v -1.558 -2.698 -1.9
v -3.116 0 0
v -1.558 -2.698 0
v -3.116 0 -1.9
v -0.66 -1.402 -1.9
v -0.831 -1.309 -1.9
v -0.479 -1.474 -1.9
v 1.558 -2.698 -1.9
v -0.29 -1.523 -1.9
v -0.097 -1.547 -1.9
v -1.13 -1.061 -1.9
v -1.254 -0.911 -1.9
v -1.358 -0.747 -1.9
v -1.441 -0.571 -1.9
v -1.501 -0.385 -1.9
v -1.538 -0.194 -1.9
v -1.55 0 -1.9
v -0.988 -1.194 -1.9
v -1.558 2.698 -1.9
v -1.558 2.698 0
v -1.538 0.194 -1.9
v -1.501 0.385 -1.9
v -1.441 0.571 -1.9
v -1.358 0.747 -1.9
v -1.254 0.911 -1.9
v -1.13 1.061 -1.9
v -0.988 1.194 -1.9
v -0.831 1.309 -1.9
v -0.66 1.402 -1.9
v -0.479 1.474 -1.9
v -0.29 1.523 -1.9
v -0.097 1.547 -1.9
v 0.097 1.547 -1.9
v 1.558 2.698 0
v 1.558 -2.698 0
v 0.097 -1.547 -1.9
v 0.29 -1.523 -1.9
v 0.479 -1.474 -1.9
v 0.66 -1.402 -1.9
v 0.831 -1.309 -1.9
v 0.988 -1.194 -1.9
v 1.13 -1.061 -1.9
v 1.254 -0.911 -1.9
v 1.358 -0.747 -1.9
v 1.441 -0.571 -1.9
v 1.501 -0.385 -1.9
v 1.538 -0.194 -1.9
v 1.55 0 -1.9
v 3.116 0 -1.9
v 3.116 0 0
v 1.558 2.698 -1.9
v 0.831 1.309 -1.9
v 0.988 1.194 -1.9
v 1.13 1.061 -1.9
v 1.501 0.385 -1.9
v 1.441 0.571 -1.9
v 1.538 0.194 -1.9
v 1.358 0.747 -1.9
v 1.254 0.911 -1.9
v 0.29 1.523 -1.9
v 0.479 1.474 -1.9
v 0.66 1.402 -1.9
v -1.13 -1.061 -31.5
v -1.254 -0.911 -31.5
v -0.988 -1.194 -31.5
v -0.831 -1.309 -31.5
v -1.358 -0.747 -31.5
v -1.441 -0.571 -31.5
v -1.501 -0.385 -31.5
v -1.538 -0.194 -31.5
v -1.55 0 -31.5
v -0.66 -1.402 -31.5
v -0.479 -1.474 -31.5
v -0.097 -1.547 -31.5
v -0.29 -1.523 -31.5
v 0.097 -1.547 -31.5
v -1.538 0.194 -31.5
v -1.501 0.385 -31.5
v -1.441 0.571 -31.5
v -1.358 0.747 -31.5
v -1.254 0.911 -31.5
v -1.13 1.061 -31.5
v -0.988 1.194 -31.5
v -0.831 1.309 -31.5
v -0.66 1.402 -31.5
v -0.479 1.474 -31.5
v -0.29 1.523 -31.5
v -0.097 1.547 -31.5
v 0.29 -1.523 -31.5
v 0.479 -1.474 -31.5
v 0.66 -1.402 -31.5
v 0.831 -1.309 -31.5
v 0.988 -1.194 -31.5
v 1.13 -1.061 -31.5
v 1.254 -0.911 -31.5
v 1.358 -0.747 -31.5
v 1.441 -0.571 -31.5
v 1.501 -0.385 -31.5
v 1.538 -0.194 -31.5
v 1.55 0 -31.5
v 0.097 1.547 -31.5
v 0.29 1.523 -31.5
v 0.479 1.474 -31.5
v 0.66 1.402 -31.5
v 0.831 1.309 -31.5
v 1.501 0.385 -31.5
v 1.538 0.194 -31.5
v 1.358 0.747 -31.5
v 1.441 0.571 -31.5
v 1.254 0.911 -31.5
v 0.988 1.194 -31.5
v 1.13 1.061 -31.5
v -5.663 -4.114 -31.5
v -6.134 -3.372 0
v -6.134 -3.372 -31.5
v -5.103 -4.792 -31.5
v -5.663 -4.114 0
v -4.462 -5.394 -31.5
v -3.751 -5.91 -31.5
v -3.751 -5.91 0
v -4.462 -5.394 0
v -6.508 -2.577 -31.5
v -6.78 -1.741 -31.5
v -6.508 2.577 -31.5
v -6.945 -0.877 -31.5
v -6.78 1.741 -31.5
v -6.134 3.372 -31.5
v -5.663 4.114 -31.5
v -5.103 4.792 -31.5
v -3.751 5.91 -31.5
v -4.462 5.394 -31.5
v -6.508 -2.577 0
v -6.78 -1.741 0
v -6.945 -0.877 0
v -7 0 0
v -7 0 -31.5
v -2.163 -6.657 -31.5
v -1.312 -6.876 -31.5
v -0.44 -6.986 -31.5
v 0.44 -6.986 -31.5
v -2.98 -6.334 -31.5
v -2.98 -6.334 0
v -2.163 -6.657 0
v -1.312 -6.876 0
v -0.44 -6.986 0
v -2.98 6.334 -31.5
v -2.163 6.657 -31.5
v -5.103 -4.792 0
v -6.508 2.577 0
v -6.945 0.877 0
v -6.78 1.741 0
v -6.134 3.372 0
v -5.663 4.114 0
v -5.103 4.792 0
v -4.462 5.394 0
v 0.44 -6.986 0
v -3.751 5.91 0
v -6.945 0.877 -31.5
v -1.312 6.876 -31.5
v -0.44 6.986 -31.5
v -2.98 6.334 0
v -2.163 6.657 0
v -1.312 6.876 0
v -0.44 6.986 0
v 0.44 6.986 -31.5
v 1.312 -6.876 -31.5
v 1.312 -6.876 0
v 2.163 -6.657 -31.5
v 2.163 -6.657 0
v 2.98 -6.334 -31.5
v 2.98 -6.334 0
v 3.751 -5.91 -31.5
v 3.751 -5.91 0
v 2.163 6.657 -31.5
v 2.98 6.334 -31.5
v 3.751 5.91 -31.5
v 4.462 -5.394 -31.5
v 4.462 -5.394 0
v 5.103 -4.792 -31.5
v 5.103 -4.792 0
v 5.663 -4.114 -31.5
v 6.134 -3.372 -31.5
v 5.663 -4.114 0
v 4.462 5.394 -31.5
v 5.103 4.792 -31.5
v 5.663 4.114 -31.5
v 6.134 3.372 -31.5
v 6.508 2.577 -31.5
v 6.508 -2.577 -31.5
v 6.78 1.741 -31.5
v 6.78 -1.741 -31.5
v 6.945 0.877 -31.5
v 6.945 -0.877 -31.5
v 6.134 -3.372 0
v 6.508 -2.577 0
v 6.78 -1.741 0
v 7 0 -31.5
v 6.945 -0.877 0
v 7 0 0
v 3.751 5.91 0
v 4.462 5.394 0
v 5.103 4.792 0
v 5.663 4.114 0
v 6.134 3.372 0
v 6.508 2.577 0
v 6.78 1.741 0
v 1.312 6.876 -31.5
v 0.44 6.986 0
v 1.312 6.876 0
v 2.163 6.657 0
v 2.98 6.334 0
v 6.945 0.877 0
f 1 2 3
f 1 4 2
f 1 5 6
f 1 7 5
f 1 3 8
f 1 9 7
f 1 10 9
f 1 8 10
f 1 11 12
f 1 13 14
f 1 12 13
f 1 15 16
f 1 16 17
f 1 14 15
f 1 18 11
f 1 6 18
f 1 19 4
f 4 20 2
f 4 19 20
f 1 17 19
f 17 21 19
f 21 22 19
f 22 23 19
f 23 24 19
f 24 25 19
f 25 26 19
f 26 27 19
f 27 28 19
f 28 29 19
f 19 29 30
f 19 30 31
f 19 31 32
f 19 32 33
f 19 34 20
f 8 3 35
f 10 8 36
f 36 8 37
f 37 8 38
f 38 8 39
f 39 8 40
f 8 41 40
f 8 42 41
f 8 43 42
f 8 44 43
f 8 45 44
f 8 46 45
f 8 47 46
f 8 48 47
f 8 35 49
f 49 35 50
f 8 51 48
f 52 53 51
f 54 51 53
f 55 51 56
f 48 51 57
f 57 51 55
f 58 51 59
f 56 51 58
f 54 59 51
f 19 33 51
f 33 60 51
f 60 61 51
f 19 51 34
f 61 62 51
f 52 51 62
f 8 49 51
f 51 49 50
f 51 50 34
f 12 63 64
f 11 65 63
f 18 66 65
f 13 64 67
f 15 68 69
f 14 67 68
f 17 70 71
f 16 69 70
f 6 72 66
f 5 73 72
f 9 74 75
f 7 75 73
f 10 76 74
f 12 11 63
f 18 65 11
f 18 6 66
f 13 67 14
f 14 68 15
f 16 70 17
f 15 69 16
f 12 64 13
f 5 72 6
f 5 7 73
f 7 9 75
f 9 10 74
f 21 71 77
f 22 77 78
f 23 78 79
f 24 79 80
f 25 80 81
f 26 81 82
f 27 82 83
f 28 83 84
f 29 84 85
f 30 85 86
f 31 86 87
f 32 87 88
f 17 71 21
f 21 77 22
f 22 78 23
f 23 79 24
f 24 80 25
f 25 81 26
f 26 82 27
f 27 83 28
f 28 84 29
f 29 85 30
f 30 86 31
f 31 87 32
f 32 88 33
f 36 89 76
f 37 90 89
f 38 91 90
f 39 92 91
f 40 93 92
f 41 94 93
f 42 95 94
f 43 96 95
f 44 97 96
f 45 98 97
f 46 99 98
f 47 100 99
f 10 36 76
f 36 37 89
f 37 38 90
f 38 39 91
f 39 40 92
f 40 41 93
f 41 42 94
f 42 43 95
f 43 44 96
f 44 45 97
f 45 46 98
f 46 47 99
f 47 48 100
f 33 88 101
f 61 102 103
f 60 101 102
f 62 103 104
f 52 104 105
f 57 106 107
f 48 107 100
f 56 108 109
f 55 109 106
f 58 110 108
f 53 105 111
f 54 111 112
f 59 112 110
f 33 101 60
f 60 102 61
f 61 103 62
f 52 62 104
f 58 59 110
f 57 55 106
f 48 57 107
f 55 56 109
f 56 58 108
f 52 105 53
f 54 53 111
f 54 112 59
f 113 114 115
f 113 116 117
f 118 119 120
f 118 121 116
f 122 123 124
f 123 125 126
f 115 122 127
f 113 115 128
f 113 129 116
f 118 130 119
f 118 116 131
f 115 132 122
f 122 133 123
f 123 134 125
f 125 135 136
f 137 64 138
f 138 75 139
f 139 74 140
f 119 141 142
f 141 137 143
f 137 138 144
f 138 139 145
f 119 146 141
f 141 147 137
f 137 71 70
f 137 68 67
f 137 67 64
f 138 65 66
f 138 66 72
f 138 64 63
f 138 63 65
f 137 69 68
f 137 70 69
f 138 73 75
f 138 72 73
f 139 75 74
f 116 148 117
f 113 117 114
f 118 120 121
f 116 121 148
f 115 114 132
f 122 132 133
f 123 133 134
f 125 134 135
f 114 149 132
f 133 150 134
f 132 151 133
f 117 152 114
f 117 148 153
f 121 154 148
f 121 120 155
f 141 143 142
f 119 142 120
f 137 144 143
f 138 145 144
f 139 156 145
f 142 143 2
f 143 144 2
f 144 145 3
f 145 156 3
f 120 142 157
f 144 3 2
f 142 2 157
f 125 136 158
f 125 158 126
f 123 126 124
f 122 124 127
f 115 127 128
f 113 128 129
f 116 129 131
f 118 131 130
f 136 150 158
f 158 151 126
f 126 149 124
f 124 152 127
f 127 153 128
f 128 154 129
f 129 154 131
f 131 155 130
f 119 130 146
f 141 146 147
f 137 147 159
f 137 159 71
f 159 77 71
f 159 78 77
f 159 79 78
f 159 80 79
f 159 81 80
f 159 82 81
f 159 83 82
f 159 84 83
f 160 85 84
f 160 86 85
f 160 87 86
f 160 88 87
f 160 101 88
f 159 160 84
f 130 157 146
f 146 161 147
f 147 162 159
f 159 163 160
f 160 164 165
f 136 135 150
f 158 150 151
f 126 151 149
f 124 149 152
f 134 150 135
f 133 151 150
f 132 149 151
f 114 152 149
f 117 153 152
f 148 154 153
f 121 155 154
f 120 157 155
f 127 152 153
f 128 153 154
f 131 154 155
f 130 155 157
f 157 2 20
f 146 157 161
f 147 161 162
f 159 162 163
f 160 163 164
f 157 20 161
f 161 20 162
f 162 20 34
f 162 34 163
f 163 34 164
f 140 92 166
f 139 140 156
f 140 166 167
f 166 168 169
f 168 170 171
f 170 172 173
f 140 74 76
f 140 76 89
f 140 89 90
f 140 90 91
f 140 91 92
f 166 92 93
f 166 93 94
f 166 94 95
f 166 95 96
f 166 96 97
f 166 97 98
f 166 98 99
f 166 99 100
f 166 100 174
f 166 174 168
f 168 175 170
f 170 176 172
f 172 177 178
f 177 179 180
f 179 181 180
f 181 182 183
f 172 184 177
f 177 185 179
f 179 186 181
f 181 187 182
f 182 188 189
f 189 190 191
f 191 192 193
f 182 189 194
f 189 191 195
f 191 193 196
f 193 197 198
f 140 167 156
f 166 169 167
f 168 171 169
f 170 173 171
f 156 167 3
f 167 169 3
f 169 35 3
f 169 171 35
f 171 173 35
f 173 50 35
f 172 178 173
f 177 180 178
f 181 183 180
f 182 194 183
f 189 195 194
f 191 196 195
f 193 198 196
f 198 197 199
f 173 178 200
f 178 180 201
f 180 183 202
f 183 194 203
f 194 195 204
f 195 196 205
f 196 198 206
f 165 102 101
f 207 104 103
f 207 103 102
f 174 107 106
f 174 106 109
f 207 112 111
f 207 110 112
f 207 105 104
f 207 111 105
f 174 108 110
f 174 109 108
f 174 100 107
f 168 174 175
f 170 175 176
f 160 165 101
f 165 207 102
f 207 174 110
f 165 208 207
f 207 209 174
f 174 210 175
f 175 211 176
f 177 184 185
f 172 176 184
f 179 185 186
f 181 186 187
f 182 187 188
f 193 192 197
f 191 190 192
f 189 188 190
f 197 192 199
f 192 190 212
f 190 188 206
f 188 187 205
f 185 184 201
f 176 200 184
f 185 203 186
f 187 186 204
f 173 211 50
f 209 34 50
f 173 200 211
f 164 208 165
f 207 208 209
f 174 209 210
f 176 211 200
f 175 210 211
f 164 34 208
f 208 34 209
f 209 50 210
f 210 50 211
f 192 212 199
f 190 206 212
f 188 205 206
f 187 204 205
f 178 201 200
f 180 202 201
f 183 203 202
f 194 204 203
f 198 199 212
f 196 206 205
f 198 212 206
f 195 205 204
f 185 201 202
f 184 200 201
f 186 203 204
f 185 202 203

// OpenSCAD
$fn = 50;


difference() {
	union() {
		translate(v = [0, 0, -31.5000000000]) {
			cylinder(h = 31.5000000000, r = 7.0000000000);
		}
	}
	union() {
		translate(v = [0, 0, 0]) {
			rotate(a = [0, 0, 0]) {
				difference() {
					union() {
						translate(v = [0, 0, -1.9000000000]) {
							linear_extrude(height = 1.9000000000) {
								polygon(points = [[3.1158000000, 0.0000000000], [1.5579000000, 2.6983619531], [-1.5579000000, 2.6983619531], [-3.1158000000, 0.0000000000], [-1.5579000000, -2.6983619531], [1.5579000000, -2.6983619531]]);
							}
						}
					}
					union();
				}
			}
		}
		#translate(v = [0, 0, -100.0000000000]) {
			cylinder(h = 200, r = 1.5500000000);
		}
	}
}
